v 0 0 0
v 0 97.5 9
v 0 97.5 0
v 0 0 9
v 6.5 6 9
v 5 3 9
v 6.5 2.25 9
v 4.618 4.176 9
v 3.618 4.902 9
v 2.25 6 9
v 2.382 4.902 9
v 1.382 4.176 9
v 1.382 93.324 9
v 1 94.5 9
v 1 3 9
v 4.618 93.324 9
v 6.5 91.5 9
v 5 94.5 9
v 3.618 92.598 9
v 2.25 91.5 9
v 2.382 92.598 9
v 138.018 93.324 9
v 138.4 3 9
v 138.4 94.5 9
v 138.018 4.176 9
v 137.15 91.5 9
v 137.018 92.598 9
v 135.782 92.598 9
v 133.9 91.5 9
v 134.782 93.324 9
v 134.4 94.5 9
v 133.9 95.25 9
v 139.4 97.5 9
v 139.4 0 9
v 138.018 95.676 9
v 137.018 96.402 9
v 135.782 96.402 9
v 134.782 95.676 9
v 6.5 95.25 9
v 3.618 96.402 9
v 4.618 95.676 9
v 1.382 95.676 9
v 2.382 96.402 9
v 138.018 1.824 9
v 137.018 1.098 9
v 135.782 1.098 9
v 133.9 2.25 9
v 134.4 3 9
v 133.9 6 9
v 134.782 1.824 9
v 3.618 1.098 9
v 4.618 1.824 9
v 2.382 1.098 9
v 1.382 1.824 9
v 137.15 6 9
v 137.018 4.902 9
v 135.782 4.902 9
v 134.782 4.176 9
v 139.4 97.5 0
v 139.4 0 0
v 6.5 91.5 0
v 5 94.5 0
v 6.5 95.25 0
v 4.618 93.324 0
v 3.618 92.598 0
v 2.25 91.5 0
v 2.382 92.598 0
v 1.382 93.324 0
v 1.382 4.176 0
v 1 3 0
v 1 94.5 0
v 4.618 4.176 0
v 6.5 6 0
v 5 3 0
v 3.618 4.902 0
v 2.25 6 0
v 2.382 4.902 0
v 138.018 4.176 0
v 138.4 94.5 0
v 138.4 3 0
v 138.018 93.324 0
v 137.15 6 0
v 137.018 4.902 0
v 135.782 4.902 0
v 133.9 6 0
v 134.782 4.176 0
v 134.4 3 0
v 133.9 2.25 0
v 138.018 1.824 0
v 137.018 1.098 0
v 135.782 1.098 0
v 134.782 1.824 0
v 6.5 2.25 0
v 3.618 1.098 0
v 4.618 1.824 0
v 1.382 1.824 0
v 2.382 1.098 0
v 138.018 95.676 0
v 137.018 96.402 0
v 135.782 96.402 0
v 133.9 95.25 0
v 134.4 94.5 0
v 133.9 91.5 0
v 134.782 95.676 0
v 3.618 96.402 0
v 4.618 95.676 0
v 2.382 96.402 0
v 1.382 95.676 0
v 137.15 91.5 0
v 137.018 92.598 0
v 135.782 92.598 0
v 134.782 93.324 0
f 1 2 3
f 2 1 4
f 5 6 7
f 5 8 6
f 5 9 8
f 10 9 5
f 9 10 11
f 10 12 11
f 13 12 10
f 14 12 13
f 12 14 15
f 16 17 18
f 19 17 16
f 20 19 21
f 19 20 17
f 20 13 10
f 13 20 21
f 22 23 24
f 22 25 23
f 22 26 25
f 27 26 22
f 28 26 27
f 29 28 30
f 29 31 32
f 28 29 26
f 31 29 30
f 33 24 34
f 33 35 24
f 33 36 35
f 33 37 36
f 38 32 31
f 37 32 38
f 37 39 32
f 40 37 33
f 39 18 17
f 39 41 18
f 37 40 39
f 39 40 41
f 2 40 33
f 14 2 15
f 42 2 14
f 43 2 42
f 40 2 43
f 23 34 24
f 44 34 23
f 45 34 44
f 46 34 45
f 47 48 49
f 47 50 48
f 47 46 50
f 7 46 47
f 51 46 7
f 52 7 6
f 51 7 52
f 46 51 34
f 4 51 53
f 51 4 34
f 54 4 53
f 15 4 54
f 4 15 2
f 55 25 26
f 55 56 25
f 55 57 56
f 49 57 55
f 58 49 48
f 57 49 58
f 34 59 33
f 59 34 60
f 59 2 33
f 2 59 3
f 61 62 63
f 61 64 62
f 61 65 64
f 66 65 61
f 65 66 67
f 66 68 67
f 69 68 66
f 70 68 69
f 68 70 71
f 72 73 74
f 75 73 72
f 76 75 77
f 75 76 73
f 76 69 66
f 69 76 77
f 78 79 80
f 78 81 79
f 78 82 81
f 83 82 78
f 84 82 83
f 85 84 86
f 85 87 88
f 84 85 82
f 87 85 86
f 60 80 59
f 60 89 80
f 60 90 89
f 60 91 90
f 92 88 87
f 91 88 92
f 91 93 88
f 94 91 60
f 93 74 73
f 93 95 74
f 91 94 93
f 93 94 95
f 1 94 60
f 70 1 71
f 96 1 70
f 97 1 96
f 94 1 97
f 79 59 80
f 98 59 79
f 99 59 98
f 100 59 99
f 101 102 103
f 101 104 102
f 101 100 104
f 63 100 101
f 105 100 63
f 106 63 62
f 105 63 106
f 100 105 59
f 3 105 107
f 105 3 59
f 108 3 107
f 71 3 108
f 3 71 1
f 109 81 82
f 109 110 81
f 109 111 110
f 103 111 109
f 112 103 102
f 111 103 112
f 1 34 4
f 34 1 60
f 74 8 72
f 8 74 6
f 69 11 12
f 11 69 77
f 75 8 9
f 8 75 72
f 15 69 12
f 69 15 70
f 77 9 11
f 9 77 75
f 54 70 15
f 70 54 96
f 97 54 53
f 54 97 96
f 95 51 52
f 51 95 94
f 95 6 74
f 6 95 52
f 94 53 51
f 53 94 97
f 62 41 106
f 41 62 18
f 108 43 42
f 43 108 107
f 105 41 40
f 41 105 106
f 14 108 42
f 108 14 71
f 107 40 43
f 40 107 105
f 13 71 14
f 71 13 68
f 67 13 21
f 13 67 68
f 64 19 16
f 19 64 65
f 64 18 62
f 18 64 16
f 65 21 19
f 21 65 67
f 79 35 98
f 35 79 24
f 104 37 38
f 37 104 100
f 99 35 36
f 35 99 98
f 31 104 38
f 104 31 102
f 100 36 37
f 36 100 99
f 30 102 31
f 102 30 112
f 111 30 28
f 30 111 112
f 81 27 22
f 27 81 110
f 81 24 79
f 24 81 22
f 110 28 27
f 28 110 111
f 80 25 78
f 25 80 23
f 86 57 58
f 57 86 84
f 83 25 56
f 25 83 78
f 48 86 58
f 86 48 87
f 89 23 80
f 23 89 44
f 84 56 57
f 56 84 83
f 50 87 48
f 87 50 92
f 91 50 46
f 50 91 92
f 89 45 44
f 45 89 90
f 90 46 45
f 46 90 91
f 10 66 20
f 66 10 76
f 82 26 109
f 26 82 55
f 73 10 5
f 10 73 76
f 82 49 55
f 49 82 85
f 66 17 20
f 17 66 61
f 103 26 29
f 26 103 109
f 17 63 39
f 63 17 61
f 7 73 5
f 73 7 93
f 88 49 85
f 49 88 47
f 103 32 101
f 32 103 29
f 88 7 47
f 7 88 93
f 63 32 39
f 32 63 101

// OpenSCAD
/* Module A v2
 * Fewer keys
 * Keycaps actually fit
 * Cross beams for support
 * Keys actally  fit, snuggly
 */
 
keyCols = 7;
keyRows = 5;
keyX = 15.2;
keyY = 12.6;
keySpace = 3.5;
vKeySpace=6;
edgeSpaceAddition = 4;
edgeSpace = (edgeSpaceAddition*2)-keySpace;
keyZ = -1;

supportH = 3.5;
supportW = 1.5;
supportZ = -3;

moduleX = (edgeSpace+edgeSpaceAddition)+(keySpace*keyCols)+keyX*(keyCols-1)+keyX;
moduleY = (edgeSpaceAddition*2-keySpace)+(vKeySpace*keyRows)+keyY*(keyRows-1)+keyY;
moduleZ = 1;

keySize = [keyX, keyY, moduleZ+2];

function position(x,y,z) = [edgeSpace+keySpace*x+keyX*(x-1)-(edgeSpaceAddition/2), edgeSpace-keySpace+(vKeySpace)*y+keyY*(y-1)-(edgeSpaceAddition/2), z];

module screwHoleD (x, y, depth){
	translate([x,y,keyZ]) cylinder(h=depth, r=2, $fn=10);
}

module screwHole (x, y){
  screwHoleD(x,y,moduleZ+2);
}



translate([0,0,0]){
  difference(){
    thickness = (supportH+1)*2;
    screws = thickness+1;
    reducer = (edgeSpace*2+3);
    cube([moduleX,moduleY,thickness]);
    screwHoleD(3,3,screws);
    screwHoleD(3,moduleY-3,screws);
    screwHoleD(moduleX-3,moduleY-3,screws);
    screwHoleD(moduleX-3,3,screws);
    
    translate([edgeSpace/2,edgeSpace+1.5,0]){
      cube([moduleX-edgeSpace,moduleY-reducer,screws]);
    }
    translate([edgeSpace+2,(edgeSpace/2),0]){
      cube([moduleX-reducer,moduleY-edgeSpace,screws]);
    }
  }
}
